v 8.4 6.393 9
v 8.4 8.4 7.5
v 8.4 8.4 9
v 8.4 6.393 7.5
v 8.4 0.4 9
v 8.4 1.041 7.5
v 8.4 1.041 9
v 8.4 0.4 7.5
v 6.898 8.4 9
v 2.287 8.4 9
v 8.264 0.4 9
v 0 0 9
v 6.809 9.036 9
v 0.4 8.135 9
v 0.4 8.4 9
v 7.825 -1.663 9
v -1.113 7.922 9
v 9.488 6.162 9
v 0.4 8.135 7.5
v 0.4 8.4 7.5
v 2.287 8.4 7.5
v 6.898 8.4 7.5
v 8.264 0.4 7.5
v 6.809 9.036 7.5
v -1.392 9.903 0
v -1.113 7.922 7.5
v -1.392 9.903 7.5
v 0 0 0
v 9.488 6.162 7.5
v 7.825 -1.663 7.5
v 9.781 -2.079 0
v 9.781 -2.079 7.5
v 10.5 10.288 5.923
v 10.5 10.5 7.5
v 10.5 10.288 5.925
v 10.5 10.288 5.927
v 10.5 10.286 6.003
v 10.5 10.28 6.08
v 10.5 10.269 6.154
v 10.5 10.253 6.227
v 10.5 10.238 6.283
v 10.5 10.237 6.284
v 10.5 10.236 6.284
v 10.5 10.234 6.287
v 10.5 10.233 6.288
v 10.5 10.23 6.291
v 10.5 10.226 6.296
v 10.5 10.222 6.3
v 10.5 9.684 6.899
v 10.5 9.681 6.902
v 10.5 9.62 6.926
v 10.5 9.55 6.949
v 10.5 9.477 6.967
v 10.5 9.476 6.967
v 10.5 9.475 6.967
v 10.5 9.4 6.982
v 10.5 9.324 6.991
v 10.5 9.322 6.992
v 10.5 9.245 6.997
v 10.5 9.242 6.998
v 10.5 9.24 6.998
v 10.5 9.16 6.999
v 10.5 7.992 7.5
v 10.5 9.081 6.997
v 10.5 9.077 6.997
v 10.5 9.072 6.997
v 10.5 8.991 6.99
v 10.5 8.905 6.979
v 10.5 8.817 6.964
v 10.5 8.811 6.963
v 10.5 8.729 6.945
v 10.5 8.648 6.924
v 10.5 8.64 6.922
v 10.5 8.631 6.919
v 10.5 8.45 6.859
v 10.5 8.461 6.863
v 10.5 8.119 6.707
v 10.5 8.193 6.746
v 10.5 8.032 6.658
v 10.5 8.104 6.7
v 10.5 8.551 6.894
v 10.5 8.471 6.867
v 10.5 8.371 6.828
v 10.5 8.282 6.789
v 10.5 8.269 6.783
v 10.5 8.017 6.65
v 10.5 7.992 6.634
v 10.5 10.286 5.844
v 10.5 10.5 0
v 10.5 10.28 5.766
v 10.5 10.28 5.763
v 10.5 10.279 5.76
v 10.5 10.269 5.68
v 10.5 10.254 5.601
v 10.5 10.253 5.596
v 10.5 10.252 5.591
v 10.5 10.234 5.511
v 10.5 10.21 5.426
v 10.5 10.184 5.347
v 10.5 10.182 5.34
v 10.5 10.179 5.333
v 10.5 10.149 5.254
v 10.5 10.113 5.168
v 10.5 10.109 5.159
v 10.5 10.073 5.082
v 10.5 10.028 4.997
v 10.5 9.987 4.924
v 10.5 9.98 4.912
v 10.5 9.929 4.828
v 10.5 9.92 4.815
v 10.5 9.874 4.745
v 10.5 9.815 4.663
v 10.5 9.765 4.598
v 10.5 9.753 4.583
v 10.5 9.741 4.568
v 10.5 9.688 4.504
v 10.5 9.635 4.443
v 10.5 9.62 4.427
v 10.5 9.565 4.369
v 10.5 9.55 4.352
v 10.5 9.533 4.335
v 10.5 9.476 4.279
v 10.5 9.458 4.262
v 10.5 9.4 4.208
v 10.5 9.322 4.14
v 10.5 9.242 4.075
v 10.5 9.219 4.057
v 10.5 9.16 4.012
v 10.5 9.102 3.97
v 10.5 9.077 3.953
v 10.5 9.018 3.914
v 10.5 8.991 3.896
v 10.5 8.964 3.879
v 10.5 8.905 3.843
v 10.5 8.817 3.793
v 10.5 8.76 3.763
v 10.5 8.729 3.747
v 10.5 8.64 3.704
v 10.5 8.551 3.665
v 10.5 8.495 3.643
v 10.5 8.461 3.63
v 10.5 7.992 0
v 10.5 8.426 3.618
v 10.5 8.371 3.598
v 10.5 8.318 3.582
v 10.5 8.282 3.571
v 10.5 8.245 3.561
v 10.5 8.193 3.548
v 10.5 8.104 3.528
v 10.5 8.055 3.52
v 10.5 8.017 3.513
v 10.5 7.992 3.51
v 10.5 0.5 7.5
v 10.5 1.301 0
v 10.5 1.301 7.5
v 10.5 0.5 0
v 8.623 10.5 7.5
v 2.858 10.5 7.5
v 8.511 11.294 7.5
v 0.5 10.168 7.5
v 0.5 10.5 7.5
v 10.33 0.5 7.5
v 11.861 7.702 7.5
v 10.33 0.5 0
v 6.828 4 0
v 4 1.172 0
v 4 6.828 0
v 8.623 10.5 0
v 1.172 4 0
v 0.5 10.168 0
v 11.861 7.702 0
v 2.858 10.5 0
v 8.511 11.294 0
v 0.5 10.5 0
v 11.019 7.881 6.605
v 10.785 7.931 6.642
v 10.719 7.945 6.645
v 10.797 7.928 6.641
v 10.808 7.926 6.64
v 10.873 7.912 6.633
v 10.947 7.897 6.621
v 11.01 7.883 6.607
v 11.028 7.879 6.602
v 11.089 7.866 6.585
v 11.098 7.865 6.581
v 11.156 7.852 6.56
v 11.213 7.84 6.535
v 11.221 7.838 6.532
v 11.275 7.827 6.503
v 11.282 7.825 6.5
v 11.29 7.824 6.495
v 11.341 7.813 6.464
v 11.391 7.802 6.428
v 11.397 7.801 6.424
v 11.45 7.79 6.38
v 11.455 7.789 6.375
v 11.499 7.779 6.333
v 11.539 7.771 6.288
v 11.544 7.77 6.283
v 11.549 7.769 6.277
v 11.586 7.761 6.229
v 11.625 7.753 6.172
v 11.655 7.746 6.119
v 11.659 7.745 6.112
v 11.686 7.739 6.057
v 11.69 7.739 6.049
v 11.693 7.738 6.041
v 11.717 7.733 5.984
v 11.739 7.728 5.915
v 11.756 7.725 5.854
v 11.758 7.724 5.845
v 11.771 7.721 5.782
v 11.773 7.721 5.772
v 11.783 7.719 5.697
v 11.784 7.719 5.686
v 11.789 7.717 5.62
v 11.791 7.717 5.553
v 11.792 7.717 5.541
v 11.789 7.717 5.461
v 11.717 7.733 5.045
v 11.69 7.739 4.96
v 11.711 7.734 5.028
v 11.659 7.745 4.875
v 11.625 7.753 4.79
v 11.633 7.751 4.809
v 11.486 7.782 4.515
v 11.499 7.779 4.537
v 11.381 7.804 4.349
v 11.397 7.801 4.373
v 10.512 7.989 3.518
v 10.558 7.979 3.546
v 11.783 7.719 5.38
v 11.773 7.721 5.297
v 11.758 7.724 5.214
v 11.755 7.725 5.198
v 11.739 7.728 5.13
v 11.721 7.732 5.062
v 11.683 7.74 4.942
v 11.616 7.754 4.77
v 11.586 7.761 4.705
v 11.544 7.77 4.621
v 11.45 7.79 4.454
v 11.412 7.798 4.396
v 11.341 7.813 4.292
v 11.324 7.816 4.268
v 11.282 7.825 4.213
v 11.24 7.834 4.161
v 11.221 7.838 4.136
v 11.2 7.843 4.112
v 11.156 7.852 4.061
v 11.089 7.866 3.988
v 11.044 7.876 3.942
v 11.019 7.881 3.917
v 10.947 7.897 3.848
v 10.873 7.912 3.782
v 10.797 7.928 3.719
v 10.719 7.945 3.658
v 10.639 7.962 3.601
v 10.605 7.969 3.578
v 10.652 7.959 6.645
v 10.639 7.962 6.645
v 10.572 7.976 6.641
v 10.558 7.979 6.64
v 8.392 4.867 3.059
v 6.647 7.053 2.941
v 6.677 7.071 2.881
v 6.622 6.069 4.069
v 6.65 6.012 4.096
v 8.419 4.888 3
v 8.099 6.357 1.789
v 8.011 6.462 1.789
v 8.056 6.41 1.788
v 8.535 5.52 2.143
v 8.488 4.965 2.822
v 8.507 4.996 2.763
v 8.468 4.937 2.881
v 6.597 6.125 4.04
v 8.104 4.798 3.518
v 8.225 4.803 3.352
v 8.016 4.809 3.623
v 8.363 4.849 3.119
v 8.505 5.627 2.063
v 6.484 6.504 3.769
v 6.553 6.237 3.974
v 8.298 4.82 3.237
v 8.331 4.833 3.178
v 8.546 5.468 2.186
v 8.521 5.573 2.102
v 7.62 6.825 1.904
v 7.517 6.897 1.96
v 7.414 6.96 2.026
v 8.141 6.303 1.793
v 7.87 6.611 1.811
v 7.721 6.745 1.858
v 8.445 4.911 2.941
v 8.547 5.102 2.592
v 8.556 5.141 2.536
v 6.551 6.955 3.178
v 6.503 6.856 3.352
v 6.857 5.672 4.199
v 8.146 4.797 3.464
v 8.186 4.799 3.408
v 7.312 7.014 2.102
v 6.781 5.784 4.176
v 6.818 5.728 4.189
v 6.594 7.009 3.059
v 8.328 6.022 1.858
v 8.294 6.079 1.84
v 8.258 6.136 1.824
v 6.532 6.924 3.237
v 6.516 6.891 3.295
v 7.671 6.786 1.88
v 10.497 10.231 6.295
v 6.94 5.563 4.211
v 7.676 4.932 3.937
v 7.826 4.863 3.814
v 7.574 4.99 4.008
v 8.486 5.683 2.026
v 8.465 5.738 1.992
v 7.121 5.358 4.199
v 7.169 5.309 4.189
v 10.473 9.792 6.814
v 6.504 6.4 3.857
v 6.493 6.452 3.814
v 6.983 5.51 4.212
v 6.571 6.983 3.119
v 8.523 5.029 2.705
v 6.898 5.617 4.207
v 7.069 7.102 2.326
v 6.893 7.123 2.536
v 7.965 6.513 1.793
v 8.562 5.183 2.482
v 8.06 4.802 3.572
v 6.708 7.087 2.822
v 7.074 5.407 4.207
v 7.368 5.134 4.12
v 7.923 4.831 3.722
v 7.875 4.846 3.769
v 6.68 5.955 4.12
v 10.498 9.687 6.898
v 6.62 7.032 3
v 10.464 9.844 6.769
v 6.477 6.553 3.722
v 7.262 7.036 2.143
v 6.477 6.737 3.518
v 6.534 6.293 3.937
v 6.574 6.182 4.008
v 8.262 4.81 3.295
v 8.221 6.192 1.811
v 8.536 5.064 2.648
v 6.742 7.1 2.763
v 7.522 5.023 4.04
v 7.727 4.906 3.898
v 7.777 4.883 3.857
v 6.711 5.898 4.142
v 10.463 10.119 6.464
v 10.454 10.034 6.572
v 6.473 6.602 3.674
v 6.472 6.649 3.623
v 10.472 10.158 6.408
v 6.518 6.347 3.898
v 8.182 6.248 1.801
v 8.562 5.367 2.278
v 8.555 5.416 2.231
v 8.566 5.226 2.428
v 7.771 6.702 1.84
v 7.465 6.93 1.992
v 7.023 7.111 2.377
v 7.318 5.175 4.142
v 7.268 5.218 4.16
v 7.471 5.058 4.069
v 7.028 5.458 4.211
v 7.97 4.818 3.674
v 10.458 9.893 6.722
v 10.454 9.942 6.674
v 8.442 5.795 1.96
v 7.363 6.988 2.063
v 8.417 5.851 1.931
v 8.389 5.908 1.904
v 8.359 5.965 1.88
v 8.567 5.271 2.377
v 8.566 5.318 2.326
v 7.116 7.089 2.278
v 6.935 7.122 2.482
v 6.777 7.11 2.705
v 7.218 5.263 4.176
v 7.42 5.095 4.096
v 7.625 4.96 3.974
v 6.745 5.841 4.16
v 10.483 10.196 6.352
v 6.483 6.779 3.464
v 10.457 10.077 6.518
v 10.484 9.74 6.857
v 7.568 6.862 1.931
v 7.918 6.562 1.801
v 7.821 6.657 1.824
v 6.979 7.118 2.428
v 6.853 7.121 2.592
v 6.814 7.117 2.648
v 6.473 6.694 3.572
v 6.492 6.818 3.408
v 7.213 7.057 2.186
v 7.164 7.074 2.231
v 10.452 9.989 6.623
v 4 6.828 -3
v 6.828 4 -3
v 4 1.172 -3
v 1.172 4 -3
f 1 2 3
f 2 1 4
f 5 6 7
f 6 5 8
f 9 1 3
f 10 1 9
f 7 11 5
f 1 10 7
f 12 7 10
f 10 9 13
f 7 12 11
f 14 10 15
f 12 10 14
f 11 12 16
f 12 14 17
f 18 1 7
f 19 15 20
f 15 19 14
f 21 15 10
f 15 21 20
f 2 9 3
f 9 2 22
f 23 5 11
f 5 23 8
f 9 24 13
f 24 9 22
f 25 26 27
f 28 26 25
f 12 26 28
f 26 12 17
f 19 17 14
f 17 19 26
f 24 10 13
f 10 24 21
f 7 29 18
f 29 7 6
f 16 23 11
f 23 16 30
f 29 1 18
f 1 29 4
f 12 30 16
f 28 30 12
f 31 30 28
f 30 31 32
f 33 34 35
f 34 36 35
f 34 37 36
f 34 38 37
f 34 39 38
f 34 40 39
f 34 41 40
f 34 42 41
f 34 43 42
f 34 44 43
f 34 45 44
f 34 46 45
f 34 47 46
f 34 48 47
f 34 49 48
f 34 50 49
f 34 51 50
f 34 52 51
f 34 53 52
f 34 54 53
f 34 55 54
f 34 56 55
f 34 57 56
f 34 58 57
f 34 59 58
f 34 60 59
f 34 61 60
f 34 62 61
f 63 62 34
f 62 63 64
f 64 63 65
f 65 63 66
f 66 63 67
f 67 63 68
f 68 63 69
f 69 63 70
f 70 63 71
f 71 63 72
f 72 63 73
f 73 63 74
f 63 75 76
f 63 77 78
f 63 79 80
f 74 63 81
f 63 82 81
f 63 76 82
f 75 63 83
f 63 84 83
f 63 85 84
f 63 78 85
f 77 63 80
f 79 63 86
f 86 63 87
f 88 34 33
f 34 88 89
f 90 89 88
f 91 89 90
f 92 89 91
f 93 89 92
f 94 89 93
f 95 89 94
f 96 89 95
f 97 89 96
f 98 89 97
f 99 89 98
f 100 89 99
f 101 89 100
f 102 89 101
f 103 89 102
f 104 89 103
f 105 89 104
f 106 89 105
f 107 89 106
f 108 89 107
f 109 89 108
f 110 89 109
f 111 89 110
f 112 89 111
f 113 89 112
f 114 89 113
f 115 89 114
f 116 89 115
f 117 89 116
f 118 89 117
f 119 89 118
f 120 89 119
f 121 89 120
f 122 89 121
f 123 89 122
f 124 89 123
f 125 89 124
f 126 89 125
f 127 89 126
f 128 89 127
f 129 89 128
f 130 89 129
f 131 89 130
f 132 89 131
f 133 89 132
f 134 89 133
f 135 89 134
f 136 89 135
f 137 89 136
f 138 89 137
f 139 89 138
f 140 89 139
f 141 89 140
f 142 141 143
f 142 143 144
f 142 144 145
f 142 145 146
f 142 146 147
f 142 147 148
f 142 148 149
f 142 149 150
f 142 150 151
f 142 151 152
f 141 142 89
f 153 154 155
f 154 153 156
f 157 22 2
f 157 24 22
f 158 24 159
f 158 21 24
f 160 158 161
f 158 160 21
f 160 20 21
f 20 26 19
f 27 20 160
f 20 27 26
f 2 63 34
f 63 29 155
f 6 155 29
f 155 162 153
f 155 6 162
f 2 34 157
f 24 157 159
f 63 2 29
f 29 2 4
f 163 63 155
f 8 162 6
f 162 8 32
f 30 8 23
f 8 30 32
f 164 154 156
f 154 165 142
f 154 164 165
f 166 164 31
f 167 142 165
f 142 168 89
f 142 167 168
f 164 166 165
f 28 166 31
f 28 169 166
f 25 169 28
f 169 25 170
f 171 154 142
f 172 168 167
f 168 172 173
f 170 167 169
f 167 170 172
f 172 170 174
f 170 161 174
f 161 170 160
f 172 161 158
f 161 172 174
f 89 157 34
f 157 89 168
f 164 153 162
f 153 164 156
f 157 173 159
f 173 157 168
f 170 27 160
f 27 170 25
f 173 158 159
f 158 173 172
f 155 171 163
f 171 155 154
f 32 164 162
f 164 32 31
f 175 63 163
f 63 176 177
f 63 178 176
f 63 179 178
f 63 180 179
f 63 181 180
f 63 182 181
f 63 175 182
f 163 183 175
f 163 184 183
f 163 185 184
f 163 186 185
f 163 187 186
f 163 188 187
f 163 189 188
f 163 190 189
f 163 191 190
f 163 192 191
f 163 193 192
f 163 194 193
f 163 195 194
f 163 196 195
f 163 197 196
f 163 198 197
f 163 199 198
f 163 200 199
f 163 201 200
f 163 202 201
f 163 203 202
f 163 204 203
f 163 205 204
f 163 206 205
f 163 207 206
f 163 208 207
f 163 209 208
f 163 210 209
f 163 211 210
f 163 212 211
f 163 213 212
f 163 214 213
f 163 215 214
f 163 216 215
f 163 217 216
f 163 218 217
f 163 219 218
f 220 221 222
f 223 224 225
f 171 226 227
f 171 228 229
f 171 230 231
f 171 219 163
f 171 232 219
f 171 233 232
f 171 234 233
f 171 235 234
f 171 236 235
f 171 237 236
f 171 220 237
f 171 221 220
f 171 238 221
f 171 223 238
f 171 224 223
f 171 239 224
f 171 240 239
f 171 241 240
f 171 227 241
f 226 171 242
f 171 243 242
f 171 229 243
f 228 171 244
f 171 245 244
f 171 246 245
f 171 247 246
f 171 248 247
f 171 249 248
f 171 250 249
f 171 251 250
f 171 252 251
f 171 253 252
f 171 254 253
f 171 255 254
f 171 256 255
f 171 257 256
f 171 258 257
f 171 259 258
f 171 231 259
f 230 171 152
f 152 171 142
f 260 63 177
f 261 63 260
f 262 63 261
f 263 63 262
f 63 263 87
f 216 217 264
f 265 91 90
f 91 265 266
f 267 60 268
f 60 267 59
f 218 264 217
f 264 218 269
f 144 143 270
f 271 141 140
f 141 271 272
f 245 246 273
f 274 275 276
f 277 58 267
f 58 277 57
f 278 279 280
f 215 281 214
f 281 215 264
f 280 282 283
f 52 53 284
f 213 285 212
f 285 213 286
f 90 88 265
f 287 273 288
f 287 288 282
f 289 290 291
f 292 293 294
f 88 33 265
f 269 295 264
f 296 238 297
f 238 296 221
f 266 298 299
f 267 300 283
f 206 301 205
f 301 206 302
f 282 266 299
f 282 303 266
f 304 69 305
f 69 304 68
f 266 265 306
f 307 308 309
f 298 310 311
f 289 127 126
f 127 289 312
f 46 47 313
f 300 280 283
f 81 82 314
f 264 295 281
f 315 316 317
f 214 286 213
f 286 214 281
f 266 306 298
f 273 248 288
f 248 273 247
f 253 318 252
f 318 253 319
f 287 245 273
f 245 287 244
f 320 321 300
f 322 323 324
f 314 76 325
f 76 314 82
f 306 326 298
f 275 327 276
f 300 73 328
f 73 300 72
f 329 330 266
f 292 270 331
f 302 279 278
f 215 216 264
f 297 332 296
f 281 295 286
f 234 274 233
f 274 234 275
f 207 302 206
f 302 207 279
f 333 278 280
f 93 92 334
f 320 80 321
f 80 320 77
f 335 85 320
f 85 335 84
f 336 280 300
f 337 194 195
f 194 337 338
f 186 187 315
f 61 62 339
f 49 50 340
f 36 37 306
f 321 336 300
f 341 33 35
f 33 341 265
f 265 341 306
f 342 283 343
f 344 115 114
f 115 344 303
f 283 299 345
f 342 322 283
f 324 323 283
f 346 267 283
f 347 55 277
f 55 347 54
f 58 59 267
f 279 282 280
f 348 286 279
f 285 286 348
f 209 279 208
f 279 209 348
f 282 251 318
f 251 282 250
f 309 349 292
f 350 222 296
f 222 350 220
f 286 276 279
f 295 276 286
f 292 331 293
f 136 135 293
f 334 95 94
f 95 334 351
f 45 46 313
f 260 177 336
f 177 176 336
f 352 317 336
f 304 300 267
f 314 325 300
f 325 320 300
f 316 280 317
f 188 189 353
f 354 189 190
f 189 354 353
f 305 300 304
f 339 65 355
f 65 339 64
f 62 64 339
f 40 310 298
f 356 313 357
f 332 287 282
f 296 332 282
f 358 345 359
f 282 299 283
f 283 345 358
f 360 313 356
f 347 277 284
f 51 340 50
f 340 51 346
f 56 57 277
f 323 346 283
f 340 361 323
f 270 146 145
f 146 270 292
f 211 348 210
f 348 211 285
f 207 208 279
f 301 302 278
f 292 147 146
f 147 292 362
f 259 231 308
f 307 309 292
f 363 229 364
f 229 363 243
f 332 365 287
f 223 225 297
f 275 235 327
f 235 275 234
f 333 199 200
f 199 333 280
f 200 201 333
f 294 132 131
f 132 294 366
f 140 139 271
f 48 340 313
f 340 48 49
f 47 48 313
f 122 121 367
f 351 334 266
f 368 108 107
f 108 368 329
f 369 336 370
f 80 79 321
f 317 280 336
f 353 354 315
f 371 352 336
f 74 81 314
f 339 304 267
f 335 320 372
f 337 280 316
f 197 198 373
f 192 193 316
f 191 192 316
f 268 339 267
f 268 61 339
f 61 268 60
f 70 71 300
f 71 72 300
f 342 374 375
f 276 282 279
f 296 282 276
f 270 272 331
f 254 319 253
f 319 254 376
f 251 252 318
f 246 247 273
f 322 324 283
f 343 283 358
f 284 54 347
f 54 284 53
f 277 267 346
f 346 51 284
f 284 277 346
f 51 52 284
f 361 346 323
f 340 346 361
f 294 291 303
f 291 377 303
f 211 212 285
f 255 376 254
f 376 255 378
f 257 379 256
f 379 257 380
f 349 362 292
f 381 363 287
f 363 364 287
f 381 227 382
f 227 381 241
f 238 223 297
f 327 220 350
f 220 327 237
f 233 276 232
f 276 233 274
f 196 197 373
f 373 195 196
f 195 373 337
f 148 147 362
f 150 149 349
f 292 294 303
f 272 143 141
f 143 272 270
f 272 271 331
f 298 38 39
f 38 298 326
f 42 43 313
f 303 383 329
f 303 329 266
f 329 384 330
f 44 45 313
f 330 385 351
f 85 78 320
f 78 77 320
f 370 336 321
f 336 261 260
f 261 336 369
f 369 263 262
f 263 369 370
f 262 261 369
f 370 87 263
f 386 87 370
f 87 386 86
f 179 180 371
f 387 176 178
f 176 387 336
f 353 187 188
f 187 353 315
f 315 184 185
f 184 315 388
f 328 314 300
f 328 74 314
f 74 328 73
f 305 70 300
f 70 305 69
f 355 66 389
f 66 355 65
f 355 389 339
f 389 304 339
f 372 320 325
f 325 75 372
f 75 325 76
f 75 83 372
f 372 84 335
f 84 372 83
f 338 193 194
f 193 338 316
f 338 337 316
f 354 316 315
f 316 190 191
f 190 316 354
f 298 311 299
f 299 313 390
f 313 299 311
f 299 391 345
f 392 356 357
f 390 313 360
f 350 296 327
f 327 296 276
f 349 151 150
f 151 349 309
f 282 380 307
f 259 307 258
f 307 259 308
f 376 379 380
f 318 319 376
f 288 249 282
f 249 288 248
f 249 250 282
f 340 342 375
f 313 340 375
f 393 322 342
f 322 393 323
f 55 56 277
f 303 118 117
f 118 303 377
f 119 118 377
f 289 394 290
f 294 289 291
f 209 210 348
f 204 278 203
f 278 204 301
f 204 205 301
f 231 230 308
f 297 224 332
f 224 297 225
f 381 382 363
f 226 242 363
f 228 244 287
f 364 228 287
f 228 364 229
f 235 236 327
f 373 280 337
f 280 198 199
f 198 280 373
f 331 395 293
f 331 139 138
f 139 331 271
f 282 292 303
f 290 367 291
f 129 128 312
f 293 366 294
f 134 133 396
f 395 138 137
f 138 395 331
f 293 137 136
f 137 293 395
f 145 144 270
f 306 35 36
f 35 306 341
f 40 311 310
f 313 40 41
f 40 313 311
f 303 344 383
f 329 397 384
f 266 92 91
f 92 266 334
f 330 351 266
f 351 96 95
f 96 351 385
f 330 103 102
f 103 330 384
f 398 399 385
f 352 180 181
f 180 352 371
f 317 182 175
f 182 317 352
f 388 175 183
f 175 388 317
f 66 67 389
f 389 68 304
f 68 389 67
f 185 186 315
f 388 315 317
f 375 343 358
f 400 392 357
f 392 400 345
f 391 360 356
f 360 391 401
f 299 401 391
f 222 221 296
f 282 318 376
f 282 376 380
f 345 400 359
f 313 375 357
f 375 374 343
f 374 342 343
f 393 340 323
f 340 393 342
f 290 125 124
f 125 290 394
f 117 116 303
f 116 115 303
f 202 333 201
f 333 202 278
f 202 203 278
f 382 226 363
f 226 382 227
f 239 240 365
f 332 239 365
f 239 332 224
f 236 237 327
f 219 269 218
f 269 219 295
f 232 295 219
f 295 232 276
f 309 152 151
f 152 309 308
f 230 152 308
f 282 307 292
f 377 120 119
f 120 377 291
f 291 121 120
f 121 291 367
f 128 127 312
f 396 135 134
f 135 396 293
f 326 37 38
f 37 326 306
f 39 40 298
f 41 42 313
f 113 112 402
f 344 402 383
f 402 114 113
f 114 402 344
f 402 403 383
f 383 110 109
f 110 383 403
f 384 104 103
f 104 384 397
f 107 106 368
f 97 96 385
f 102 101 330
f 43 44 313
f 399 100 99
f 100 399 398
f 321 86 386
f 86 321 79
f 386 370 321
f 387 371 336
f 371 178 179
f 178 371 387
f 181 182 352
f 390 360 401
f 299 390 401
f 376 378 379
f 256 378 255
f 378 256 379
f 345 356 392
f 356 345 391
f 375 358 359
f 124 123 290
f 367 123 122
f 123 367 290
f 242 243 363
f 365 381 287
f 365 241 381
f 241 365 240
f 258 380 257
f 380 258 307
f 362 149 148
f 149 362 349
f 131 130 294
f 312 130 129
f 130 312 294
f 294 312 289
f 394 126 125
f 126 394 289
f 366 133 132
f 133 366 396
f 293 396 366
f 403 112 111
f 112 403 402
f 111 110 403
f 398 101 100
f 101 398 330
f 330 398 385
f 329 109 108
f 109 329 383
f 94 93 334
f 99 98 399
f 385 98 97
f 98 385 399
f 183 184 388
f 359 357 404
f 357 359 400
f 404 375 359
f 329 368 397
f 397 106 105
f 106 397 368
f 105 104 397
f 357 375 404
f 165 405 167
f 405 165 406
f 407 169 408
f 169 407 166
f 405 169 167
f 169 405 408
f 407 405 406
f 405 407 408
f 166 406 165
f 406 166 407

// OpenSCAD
translate([0,0,6])
scale([0.8,0.8,1])
upperRockLayer();

difference() {
    scale([1,1,2.5])
    upperRockLayer();
    translate([11.5,9.3,6])
    rotate([120,0,-50])
    cylinder(d=2.8, h=6, $fn=128);
}

translate([4,4,-1.5])
rotate([0,0,45])
cube([4,4,3], center=true);



module upperRockLayer() {
    union() {
        translate([0.5,0.5,0])
        cube([10,10,3]);
        rotate([0,0,8])
        cube([10,10,3]);
        rotate([0,0,-12])
        cube([10,10,3]);
    }
}
